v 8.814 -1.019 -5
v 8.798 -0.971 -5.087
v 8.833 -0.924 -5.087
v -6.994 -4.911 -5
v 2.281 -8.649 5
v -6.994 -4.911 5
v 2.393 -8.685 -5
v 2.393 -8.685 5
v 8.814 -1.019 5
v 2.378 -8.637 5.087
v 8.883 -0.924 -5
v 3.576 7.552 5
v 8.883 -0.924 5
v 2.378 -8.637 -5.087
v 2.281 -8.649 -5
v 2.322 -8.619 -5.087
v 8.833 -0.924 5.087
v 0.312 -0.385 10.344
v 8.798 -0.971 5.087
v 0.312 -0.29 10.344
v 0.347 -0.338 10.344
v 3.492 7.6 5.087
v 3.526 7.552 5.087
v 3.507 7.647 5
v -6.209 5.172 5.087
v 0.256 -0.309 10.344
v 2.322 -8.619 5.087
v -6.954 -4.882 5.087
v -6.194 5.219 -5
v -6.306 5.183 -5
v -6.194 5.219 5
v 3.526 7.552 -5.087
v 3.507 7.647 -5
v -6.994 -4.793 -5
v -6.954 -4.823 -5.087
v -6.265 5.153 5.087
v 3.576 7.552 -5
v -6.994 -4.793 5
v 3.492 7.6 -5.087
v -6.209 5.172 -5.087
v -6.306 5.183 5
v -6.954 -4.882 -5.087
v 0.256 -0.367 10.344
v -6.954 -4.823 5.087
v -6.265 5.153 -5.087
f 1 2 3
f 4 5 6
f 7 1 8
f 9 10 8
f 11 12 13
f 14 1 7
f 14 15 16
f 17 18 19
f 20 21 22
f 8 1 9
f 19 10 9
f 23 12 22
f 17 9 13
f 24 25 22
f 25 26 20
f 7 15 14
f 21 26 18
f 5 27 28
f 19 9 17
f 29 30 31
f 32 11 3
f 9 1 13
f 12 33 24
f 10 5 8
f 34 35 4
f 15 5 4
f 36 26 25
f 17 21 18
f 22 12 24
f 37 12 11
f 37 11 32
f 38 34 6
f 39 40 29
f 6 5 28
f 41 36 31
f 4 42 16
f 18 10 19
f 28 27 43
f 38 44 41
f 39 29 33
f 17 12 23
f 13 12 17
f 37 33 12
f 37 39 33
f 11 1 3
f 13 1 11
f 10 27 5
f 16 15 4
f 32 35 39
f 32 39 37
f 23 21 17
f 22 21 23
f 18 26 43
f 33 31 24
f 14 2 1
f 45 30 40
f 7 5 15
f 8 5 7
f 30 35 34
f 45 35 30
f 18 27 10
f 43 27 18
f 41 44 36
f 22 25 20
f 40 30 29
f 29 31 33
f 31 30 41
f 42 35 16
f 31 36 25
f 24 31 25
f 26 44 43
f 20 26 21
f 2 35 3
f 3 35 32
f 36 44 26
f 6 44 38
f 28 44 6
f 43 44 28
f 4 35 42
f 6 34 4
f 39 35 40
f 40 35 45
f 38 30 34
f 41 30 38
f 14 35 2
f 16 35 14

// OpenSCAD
// Auto-generated OpenSCAD file

    inner_points = 10*[[0.23620735966756062, -0.8589852711237683, 0.5000000000000063], [0.23620735966771172, -0.858985271123738, -0.4999999999999937], [0.34761095792346763, 0.7552090254358284, 0.5000000000000718], [0.34761095792361874, 0.7552090254358587, -0.4999999999999281], [-0.6913160481524341, -0.4852202005968615, 0.49999999999987743], [-0.6913160481522832, -0.48522020059683124, -0.5000000000001226], [-0.6224648379612451, 0.5124067391231968, 0.49999999999991795], [-0.6224648379610942, 0.512406739123227, -0.5000000000000819], [0.8782995612526363, -0.09235784879684011, 0.5000000000001265], [0.8782995612527874, -0.09235784879680989, -0.49999999999987355], [0.029667398545917656, -0.03378951119170483, 1.0257311121191337]];

    outer_points = 10*[[0.6896236781921562, -0.5645352314085775, 0.42346895131185747], [0.41955903020283425, 0.3036037251142055, 0.8398820131554279], [-0.6679054017418039, -0.5645352314085775, -0.456956392418973], [-0.9379700497311259, 0.3036037251142055, -0.04054333057540266], [0.879621500888307, -0.092505702154205, -0.43739628255614915], [0.6095568528989852, 0.775633254368578, -0.0209832207125788], [0.04062238877274693, -0.092505702154205, -0.9815290695386115], [-0.22944225921657496, 0.775633254368578, -0.5651160076950412], [-0.26680054613810145, -0.8562655241813926, 0.41138013859295025], [-0.5368651941274234, 0.011873432341390544, 0.8277932004365205], [0.2770137117261496, -0.8904771373480586, -0.42712783302573903]];

    // Convex hull for inner set (I)
    module inner_hull() {
        hull() {
            for (p = inner_points) {
                translate(p) sphere(r=0.1);
            }
        }
    }

    // Convex hull for outer set (O) minus inner hull (O \ I)
    module outer_minus_inner() {
        difference() {
            hull() {
                for (p = outer_points) {
                    translate(p) sphere(r=0.1);
                }
            }
            inner_hull(); // Subtract inner hull
        }
    }

    // Convex hull for outer set (O) minus all translated inner hulls
    module outer_minus_AllTranslationInner() {
        difference() {
            hull() {
                for (p = outer_points) {
                    translate(p) sphere(r=0.1);
                }
            }
            hull() {
                translate([0,0,50]) inner_hull();
                translate([0,0,-50]) inner_hull();
            }; // Subtract translated inner hulls
        }
    }

    // Difference between outer_minus_inner and outer_minus_AllTranslationInner
    module outer_minus_inner_diff() {
        difference() {
            // Outer minus inner
            difference() {
                hull() {
                    for (p = outer_points) {
                        translate(p) sphere(r=0.1);
                    }
                }
                inner_hull();
            }

            // Subtract Outer minus AllTranslationInner
            difference() {
                hull() {
                    for (p = outer_points) {
                        translate(p) sphere(r=0.1);
                    }
                }
                hull() {
                    translate([0,0,50]) inner_hull();
                    translate([0,0,-50]) inner_hull();
                };
            }
        }
    }

    // Rendering all with colors applied
    color([1, 0, 0, 0.5]) inner_hull(); // Transparent red
    
